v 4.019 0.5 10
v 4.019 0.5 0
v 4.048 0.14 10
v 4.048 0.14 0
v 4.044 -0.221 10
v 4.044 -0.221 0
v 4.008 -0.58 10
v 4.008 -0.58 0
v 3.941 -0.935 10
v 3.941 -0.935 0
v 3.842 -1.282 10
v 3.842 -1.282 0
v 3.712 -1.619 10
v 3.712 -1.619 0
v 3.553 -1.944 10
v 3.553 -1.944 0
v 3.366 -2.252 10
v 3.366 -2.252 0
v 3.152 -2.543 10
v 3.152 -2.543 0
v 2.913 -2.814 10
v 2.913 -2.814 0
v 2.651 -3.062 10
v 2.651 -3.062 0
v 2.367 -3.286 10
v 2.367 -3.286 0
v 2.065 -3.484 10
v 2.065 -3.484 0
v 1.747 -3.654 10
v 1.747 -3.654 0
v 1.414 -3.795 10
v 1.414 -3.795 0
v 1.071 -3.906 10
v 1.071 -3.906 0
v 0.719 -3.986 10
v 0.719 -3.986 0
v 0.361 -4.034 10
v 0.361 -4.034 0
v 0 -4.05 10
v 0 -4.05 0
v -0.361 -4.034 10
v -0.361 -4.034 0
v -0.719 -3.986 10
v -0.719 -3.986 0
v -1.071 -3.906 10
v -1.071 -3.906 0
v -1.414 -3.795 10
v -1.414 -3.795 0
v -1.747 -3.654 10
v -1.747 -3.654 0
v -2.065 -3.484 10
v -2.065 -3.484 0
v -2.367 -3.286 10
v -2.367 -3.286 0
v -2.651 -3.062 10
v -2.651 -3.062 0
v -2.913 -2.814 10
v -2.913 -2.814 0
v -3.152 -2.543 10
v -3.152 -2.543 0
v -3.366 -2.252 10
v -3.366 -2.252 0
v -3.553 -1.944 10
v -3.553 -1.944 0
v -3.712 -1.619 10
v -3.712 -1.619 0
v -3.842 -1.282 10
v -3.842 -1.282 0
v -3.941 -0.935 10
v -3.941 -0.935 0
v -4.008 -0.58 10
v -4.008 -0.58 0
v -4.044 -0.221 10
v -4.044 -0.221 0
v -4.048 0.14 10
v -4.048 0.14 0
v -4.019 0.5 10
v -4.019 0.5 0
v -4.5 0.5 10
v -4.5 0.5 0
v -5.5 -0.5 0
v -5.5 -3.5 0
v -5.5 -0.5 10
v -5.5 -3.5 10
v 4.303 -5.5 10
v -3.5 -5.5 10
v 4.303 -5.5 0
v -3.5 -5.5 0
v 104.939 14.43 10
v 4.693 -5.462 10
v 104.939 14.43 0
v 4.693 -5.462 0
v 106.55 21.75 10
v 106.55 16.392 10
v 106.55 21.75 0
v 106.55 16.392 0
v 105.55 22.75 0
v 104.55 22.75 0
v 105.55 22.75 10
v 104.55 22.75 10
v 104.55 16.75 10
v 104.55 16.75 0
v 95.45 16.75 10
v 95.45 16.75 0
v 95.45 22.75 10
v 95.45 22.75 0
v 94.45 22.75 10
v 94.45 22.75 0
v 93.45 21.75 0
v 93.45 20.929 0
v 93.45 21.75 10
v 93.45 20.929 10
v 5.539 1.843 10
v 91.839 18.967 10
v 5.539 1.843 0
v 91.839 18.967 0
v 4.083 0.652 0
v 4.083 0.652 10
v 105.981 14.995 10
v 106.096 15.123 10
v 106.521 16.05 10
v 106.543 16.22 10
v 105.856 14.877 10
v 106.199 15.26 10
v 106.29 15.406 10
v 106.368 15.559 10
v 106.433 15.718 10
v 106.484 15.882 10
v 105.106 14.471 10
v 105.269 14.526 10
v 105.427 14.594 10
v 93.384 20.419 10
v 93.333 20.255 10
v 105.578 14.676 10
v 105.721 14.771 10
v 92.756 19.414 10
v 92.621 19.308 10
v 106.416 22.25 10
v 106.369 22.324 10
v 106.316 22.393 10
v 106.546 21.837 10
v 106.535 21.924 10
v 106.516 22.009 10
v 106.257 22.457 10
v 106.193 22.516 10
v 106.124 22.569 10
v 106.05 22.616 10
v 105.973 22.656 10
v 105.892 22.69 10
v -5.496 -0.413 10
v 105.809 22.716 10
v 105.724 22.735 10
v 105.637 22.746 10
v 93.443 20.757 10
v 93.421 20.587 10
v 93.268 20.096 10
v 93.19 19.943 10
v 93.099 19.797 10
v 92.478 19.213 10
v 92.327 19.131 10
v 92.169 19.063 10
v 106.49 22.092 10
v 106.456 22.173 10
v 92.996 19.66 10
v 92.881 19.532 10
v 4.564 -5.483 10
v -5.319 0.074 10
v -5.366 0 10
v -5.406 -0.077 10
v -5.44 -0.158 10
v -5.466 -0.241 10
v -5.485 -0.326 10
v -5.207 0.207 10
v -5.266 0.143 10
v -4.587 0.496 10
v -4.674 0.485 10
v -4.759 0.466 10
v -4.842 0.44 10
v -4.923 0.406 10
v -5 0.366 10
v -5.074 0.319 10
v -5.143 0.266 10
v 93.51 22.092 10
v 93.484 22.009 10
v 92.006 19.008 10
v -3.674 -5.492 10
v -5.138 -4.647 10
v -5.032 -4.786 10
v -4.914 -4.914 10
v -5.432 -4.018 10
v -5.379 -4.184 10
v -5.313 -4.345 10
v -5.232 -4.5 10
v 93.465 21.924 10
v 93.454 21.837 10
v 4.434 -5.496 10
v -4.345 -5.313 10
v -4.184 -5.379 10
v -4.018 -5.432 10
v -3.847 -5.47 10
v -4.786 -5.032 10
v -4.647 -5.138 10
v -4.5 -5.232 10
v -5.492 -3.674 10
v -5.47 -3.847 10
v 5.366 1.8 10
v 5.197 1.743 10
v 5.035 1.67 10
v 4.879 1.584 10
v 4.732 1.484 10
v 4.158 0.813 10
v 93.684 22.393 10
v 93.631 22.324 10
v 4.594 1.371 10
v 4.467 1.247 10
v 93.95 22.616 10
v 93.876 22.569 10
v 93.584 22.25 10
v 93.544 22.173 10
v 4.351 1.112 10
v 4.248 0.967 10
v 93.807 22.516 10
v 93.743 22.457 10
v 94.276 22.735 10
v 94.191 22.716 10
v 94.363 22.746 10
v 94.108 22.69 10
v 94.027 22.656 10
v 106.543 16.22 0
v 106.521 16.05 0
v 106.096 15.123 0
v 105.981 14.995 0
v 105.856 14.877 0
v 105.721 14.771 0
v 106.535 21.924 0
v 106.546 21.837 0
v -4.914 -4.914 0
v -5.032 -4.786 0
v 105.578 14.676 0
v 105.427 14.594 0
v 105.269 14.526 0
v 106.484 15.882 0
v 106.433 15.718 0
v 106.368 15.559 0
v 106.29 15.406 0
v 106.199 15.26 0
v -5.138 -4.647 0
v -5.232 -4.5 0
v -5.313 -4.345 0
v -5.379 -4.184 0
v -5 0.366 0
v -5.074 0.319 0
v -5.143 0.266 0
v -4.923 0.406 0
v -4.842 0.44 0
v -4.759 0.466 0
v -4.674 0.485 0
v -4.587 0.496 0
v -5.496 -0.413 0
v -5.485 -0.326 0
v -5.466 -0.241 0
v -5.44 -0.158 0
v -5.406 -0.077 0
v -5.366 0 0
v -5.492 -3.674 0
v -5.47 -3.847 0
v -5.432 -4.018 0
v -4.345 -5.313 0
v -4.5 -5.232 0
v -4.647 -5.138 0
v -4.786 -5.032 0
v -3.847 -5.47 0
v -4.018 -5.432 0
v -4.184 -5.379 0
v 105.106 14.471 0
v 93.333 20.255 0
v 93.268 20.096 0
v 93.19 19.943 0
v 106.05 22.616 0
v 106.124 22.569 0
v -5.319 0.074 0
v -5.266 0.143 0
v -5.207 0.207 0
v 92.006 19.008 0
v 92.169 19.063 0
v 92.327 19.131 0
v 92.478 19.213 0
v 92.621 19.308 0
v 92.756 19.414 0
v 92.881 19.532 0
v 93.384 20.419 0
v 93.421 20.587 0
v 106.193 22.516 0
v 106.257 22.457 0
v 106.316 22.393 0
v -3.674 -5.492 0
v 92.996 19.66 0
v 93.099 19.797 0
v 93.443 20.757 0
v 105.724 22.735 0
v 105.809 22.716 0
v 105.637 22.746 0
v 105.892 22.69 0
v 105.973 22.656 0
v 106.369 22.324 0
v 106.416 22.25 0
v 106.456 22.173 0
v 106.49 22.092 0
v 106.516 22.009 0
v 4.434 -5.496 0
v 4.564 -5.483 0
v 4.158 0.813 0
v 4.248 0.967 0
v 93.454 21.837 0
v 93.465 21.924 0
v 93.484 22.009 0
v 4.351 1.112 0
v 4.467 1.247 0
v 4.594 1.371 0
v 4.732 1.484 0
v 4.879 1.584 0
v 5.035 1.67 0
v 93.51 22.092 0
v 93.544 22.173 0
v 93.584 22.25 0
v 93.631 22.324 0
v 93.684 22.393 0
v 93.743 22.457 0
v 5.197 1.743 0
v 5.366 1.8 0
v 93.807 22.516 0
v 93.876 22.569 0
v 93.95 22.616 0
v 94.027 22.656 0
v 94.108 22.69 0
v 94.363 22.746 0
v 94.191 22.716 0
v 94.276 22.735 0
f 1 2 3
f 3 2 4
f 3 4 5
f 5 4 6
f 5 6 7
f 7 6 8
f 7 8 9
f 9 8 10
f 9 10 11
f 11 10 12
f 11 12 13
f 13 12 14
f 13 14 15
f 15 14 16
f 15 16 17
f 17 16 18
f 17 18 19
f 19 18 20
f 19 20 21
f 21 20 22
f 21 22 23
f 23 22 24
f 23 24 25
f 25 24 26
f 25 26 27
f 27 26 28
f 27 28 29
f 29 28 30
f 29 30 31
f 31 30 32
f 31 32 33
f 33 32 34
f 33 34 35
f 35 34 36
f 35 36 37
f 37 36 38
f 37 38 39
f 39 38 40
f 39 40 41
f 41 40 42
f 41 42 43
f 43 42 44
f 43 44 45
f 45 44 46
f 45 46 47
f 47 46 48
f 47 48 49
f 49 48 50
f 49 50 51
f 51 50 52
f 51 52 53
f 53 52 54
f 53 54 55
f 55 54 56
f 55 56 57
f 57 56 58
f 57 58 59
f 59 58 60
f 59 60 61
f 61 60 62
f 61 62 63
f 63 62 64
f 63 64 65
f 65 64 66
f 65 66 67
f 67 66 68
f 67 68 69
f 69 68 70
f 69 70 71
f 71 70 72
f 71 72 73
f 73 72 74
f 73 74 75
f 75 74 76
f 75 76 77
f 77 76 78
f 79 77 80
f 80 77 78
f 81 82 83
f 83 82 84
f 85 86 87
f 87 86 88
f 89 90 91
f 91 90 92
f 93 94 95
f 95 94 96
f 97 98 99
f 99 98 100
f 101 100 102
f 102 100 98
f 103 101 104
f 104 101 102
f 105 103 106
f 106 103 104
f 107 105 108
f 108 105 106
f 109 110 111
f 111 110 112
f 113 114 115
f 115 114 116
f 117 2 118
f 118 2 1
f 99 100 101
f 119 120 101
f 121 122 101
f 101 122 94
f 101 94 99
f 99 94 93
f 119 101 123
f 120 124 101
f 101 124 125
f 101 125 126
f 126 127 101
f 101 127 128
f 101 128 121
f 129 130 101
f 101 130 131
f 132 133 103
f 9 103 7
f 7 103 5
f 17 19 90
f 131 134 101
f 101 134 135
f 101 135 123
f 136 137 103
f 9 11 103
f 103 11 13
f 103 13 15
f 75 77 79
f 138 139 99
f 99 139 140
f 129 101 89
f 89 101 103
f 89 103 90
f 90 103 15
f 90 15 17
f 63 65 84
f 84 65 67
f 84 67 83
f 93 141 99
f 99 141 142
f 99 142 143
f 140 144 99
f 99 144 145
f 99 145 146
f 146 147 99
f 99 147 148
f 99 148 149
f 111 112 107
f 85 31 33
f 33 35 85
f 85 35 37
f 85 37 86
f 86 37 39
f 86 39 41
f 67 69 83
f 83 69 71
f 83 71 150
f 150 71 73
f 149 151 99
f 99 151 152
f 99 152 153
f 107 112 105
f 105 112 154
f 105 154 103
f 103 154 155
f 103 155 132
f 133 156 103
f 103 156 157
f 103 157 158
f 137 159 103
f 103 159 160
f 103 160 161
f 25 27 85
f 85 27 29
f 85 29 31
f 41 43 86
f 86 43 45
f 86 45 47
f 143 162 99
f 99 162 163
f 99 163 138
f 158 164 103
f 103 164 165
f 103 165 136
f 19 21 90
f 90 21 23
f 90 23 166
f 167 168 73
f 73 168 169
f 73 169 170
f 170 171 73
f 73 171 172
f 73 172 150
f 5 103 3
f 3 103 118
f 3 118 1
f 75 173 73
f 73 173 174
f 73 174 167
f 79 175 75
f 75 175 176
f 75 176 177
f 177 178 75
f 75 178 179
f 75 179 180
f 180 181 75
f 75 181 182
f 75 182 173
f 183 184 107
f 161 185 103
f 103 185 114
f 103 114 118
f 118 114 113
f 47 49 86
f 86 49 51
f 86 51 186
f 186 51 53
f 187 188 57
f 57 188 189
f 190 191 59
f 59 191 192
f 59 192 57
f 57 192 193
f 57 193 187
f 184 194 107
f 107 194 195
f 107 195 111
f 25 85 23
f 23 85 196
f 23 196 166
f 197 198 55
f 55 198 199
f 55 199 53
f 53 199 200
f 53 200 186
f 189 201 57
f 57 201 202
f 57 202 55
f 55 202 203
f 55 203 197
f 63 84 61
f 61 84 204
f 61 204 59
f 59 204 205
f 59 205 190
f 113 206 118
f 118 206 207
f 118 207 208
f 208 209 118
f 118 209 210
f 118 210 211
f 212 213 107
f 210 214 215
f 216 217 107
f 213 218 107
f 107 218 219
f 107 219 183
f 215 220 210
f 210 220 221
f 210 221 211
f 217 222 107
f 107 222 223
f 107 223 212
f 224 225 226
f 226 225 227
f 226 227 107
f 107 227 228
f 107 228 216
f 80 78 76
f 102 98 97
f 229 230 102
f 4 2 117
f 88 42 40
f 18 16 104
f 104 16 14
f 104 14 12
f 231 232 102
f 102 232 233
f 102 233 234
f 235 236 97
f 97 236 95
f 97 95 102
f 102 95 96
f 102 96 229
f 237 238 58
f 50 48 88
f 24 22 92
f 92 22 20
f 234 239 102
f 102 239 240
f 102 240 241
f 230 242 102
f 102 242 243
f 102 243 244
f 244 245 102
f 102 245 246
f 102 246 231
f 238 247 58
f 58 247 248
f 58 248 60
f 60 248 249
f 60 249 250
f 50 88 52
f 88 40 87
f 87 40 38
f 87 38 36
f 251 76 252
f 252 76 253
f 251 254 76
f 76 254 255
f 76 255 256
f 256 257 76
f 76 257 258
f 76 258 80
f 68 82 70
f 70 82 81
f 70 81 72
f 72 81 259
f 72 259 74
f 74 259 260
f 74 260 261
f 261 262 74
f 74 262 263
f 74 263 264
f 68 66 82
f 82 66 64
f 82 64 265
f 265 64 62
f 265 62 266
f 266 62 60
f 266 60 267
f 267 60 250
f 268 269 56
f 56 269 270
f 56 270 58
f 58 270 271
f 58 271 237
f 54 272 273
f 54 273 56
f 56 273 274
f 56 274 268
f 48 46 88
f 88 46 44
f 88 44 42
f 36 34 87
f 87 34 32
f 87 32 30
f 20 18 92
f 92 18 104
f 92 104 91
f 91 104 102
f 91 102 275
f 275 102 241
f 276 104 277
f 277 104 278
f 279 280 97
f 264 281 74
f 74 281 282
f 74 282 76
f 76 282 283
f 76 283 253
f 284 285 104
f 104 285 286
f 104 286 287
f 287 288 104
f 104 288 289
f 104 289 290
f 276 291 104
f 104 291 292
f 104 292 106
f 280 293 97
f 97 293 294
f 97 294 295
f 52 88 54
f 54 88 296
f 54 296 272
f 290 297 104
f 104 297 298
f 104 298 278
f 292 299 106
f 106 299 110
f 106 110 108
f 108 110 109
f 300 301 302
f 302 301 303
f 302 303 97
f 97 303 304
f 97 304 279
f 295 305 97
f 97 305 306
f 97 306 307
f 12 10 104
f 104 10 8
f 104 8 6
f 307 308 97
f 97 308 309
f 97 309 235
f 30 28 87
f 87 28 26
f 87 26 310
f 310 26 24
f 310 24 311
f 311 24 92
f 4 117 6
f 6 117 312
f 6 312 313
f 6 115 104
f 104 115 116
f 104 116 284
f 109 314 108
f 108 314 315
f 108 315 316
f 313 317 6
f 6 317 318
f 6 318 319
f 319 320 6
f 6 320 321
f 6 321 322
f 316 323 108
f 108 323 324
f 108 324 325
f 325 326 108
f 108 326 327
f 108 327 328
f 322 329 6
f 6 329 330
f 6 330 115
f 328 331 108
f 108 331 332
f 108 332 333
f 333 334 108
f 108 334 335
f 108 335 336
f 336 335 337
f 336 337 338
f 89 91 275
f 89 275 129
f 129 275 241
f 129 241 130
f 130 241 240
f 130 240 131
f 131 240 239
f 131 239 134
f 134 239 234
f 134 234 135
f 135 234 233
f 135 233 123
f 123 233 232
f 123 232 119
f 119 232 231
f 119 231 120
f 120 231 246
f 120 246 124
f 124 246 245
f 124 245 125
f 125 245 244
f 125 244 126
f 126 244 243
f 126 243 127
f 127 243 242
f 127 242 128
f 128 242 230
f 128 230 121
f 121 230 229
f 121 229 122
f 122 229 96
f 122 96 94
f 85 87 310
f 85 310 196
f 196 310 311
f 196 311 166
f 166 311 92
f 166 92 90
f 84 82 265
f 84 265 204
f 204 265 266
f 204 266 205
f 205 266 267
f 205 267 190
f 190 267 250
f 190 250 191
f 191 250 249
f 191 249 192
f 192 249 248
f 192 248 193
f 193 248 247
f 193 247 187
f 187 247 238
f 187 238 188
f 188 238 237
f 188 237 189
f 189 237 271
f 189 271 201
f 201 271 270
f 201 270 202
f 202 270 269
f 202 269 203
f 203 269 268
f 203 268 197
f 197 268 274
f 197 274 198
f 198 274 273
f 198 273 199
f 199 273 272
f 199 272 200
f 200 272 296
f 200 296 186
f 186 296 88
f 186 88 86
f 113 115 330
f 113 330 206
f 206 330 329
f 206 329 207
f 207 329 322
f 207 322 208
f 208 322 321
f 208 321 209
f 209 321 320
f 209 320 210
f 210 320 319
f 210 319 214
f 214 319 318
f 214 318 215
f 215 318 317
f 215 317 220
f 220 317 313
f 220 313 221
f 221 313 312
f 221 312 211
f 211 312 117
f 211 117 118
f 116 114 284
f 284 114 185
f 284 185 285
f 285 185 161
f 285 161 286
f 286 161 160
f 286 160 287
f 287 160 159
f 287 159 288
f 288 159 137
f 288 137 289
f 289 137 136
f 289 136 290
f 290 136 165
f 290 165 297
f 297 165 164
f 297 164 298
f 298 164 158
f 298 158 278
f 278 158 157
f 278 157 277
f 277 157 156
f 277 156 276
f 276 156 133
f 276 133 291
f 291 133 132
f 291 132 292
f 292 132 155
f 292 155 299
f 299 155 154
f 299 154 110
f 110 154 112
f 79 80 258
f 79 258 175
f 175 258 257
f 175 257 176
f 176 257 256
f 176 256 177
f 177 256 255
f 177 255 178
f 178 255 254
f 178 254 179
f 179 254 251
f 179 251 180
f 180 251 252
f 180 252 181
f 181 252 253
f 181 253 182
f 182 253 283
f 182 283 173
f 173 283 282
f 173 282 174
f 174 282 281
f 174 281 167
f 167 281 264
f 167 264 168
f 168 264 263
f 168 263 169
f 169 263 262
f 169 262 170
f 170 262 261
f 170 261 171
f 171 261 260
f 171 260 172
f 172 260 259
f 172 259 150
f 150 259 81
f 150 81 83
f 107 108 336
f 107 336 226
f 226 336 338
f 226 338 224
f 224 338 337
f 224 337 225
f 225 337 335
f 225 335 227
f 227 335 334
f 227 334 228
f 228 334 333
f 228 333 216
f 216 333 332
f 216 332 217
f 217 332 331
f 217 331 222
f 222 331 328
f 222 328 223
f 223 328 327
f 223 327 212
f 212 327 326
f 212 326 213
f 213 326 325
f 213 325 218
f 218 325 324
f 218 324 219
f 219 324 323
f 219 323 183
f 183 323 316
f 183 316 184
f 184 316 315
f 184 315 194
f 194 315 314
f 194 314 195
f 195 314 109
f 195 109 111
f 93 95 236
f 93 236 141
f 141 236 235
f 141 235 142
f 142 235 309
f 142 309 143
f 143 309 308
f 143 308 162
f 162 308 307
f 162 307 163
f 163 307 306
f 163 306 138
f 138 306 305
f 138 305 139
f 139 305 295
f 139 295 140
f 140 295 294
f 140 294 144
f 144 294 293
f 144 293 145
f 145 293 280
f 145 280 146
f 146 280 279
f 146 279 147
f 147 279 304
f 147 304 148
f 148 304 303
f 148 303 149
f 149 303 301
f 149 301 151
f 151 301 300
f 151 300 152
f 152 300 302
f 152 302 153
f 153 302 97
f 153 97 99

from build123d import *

# Parameters (mm, degrees)
EXTRUDE_1_DEPTH = 10
FILLET_1_R      = 2
FILLET_2_R      = 1


with BuildPart() as part:
    # Эскиз1 → Бобышка-Вытянуть1 (new body)
    with BuildSketch(Plane.XY):
        with BuildLine():
            Line((95.45, 22.75), (95.45, 16.75))
            Line((95.45, 16.75), (104.55, 16.75))
            Line((104.55, 16.75), (104.55, 22.75))
            Line((104.55, 22.75), (106.55, 22.75))
            Line((106.55, 22.75), (106.55, 14.75))
            Line((106.55, 14.75), (4.5, -5.5))
            Line((4.5, -5.5), (-5.5, -5.5))
            Line((-5.5, -5.5), (-5.5, 0.5))
            Line((-5.5, 0.5), (-4.019017293, 0.5))
            ThreePointArc((-4.019017293, 0.5), (0, -4.05), (4.019017293, 0.5))
            Line((4.019017293, 0.5), (4.493506463, 1.63519453))
            Line((4.493506463, 1.63519453), (93.45, 19.287022008))
            Line((93.45, 19.287022008), (93.45, 22.75))
            Line((93.45, 22.75), (95.45, 22.75))
        make_face()
    extrude(amount=EXTRUDE_1_DEPTH)

    # Скругление1
    fillet_1_edges = [part.edges().sort_by_distance(p)[0] for p in [
        (4.493506463, 1.63519453, 5),
        (93.45, 19.287022008, 5),
        (106.55, 14.75, 5),
        (4.5, -5.5, 5),
        (-5.5, -5.5, 5),
    ]]
    fillet(fillet_1_edges, radius=FILLET_1_R)

    # Скругление2
    fillet_2_edges = [part.edges().sort_by_distance(p)[0] for p in [
        (93.45, 22.75, 5),
        (106.55, 22.75, 5),
        (-5.5, 0.5, 5),
    ]]
    fillet(fillet_2_edges, radius=FILLET_2_R)


solid = part.part
